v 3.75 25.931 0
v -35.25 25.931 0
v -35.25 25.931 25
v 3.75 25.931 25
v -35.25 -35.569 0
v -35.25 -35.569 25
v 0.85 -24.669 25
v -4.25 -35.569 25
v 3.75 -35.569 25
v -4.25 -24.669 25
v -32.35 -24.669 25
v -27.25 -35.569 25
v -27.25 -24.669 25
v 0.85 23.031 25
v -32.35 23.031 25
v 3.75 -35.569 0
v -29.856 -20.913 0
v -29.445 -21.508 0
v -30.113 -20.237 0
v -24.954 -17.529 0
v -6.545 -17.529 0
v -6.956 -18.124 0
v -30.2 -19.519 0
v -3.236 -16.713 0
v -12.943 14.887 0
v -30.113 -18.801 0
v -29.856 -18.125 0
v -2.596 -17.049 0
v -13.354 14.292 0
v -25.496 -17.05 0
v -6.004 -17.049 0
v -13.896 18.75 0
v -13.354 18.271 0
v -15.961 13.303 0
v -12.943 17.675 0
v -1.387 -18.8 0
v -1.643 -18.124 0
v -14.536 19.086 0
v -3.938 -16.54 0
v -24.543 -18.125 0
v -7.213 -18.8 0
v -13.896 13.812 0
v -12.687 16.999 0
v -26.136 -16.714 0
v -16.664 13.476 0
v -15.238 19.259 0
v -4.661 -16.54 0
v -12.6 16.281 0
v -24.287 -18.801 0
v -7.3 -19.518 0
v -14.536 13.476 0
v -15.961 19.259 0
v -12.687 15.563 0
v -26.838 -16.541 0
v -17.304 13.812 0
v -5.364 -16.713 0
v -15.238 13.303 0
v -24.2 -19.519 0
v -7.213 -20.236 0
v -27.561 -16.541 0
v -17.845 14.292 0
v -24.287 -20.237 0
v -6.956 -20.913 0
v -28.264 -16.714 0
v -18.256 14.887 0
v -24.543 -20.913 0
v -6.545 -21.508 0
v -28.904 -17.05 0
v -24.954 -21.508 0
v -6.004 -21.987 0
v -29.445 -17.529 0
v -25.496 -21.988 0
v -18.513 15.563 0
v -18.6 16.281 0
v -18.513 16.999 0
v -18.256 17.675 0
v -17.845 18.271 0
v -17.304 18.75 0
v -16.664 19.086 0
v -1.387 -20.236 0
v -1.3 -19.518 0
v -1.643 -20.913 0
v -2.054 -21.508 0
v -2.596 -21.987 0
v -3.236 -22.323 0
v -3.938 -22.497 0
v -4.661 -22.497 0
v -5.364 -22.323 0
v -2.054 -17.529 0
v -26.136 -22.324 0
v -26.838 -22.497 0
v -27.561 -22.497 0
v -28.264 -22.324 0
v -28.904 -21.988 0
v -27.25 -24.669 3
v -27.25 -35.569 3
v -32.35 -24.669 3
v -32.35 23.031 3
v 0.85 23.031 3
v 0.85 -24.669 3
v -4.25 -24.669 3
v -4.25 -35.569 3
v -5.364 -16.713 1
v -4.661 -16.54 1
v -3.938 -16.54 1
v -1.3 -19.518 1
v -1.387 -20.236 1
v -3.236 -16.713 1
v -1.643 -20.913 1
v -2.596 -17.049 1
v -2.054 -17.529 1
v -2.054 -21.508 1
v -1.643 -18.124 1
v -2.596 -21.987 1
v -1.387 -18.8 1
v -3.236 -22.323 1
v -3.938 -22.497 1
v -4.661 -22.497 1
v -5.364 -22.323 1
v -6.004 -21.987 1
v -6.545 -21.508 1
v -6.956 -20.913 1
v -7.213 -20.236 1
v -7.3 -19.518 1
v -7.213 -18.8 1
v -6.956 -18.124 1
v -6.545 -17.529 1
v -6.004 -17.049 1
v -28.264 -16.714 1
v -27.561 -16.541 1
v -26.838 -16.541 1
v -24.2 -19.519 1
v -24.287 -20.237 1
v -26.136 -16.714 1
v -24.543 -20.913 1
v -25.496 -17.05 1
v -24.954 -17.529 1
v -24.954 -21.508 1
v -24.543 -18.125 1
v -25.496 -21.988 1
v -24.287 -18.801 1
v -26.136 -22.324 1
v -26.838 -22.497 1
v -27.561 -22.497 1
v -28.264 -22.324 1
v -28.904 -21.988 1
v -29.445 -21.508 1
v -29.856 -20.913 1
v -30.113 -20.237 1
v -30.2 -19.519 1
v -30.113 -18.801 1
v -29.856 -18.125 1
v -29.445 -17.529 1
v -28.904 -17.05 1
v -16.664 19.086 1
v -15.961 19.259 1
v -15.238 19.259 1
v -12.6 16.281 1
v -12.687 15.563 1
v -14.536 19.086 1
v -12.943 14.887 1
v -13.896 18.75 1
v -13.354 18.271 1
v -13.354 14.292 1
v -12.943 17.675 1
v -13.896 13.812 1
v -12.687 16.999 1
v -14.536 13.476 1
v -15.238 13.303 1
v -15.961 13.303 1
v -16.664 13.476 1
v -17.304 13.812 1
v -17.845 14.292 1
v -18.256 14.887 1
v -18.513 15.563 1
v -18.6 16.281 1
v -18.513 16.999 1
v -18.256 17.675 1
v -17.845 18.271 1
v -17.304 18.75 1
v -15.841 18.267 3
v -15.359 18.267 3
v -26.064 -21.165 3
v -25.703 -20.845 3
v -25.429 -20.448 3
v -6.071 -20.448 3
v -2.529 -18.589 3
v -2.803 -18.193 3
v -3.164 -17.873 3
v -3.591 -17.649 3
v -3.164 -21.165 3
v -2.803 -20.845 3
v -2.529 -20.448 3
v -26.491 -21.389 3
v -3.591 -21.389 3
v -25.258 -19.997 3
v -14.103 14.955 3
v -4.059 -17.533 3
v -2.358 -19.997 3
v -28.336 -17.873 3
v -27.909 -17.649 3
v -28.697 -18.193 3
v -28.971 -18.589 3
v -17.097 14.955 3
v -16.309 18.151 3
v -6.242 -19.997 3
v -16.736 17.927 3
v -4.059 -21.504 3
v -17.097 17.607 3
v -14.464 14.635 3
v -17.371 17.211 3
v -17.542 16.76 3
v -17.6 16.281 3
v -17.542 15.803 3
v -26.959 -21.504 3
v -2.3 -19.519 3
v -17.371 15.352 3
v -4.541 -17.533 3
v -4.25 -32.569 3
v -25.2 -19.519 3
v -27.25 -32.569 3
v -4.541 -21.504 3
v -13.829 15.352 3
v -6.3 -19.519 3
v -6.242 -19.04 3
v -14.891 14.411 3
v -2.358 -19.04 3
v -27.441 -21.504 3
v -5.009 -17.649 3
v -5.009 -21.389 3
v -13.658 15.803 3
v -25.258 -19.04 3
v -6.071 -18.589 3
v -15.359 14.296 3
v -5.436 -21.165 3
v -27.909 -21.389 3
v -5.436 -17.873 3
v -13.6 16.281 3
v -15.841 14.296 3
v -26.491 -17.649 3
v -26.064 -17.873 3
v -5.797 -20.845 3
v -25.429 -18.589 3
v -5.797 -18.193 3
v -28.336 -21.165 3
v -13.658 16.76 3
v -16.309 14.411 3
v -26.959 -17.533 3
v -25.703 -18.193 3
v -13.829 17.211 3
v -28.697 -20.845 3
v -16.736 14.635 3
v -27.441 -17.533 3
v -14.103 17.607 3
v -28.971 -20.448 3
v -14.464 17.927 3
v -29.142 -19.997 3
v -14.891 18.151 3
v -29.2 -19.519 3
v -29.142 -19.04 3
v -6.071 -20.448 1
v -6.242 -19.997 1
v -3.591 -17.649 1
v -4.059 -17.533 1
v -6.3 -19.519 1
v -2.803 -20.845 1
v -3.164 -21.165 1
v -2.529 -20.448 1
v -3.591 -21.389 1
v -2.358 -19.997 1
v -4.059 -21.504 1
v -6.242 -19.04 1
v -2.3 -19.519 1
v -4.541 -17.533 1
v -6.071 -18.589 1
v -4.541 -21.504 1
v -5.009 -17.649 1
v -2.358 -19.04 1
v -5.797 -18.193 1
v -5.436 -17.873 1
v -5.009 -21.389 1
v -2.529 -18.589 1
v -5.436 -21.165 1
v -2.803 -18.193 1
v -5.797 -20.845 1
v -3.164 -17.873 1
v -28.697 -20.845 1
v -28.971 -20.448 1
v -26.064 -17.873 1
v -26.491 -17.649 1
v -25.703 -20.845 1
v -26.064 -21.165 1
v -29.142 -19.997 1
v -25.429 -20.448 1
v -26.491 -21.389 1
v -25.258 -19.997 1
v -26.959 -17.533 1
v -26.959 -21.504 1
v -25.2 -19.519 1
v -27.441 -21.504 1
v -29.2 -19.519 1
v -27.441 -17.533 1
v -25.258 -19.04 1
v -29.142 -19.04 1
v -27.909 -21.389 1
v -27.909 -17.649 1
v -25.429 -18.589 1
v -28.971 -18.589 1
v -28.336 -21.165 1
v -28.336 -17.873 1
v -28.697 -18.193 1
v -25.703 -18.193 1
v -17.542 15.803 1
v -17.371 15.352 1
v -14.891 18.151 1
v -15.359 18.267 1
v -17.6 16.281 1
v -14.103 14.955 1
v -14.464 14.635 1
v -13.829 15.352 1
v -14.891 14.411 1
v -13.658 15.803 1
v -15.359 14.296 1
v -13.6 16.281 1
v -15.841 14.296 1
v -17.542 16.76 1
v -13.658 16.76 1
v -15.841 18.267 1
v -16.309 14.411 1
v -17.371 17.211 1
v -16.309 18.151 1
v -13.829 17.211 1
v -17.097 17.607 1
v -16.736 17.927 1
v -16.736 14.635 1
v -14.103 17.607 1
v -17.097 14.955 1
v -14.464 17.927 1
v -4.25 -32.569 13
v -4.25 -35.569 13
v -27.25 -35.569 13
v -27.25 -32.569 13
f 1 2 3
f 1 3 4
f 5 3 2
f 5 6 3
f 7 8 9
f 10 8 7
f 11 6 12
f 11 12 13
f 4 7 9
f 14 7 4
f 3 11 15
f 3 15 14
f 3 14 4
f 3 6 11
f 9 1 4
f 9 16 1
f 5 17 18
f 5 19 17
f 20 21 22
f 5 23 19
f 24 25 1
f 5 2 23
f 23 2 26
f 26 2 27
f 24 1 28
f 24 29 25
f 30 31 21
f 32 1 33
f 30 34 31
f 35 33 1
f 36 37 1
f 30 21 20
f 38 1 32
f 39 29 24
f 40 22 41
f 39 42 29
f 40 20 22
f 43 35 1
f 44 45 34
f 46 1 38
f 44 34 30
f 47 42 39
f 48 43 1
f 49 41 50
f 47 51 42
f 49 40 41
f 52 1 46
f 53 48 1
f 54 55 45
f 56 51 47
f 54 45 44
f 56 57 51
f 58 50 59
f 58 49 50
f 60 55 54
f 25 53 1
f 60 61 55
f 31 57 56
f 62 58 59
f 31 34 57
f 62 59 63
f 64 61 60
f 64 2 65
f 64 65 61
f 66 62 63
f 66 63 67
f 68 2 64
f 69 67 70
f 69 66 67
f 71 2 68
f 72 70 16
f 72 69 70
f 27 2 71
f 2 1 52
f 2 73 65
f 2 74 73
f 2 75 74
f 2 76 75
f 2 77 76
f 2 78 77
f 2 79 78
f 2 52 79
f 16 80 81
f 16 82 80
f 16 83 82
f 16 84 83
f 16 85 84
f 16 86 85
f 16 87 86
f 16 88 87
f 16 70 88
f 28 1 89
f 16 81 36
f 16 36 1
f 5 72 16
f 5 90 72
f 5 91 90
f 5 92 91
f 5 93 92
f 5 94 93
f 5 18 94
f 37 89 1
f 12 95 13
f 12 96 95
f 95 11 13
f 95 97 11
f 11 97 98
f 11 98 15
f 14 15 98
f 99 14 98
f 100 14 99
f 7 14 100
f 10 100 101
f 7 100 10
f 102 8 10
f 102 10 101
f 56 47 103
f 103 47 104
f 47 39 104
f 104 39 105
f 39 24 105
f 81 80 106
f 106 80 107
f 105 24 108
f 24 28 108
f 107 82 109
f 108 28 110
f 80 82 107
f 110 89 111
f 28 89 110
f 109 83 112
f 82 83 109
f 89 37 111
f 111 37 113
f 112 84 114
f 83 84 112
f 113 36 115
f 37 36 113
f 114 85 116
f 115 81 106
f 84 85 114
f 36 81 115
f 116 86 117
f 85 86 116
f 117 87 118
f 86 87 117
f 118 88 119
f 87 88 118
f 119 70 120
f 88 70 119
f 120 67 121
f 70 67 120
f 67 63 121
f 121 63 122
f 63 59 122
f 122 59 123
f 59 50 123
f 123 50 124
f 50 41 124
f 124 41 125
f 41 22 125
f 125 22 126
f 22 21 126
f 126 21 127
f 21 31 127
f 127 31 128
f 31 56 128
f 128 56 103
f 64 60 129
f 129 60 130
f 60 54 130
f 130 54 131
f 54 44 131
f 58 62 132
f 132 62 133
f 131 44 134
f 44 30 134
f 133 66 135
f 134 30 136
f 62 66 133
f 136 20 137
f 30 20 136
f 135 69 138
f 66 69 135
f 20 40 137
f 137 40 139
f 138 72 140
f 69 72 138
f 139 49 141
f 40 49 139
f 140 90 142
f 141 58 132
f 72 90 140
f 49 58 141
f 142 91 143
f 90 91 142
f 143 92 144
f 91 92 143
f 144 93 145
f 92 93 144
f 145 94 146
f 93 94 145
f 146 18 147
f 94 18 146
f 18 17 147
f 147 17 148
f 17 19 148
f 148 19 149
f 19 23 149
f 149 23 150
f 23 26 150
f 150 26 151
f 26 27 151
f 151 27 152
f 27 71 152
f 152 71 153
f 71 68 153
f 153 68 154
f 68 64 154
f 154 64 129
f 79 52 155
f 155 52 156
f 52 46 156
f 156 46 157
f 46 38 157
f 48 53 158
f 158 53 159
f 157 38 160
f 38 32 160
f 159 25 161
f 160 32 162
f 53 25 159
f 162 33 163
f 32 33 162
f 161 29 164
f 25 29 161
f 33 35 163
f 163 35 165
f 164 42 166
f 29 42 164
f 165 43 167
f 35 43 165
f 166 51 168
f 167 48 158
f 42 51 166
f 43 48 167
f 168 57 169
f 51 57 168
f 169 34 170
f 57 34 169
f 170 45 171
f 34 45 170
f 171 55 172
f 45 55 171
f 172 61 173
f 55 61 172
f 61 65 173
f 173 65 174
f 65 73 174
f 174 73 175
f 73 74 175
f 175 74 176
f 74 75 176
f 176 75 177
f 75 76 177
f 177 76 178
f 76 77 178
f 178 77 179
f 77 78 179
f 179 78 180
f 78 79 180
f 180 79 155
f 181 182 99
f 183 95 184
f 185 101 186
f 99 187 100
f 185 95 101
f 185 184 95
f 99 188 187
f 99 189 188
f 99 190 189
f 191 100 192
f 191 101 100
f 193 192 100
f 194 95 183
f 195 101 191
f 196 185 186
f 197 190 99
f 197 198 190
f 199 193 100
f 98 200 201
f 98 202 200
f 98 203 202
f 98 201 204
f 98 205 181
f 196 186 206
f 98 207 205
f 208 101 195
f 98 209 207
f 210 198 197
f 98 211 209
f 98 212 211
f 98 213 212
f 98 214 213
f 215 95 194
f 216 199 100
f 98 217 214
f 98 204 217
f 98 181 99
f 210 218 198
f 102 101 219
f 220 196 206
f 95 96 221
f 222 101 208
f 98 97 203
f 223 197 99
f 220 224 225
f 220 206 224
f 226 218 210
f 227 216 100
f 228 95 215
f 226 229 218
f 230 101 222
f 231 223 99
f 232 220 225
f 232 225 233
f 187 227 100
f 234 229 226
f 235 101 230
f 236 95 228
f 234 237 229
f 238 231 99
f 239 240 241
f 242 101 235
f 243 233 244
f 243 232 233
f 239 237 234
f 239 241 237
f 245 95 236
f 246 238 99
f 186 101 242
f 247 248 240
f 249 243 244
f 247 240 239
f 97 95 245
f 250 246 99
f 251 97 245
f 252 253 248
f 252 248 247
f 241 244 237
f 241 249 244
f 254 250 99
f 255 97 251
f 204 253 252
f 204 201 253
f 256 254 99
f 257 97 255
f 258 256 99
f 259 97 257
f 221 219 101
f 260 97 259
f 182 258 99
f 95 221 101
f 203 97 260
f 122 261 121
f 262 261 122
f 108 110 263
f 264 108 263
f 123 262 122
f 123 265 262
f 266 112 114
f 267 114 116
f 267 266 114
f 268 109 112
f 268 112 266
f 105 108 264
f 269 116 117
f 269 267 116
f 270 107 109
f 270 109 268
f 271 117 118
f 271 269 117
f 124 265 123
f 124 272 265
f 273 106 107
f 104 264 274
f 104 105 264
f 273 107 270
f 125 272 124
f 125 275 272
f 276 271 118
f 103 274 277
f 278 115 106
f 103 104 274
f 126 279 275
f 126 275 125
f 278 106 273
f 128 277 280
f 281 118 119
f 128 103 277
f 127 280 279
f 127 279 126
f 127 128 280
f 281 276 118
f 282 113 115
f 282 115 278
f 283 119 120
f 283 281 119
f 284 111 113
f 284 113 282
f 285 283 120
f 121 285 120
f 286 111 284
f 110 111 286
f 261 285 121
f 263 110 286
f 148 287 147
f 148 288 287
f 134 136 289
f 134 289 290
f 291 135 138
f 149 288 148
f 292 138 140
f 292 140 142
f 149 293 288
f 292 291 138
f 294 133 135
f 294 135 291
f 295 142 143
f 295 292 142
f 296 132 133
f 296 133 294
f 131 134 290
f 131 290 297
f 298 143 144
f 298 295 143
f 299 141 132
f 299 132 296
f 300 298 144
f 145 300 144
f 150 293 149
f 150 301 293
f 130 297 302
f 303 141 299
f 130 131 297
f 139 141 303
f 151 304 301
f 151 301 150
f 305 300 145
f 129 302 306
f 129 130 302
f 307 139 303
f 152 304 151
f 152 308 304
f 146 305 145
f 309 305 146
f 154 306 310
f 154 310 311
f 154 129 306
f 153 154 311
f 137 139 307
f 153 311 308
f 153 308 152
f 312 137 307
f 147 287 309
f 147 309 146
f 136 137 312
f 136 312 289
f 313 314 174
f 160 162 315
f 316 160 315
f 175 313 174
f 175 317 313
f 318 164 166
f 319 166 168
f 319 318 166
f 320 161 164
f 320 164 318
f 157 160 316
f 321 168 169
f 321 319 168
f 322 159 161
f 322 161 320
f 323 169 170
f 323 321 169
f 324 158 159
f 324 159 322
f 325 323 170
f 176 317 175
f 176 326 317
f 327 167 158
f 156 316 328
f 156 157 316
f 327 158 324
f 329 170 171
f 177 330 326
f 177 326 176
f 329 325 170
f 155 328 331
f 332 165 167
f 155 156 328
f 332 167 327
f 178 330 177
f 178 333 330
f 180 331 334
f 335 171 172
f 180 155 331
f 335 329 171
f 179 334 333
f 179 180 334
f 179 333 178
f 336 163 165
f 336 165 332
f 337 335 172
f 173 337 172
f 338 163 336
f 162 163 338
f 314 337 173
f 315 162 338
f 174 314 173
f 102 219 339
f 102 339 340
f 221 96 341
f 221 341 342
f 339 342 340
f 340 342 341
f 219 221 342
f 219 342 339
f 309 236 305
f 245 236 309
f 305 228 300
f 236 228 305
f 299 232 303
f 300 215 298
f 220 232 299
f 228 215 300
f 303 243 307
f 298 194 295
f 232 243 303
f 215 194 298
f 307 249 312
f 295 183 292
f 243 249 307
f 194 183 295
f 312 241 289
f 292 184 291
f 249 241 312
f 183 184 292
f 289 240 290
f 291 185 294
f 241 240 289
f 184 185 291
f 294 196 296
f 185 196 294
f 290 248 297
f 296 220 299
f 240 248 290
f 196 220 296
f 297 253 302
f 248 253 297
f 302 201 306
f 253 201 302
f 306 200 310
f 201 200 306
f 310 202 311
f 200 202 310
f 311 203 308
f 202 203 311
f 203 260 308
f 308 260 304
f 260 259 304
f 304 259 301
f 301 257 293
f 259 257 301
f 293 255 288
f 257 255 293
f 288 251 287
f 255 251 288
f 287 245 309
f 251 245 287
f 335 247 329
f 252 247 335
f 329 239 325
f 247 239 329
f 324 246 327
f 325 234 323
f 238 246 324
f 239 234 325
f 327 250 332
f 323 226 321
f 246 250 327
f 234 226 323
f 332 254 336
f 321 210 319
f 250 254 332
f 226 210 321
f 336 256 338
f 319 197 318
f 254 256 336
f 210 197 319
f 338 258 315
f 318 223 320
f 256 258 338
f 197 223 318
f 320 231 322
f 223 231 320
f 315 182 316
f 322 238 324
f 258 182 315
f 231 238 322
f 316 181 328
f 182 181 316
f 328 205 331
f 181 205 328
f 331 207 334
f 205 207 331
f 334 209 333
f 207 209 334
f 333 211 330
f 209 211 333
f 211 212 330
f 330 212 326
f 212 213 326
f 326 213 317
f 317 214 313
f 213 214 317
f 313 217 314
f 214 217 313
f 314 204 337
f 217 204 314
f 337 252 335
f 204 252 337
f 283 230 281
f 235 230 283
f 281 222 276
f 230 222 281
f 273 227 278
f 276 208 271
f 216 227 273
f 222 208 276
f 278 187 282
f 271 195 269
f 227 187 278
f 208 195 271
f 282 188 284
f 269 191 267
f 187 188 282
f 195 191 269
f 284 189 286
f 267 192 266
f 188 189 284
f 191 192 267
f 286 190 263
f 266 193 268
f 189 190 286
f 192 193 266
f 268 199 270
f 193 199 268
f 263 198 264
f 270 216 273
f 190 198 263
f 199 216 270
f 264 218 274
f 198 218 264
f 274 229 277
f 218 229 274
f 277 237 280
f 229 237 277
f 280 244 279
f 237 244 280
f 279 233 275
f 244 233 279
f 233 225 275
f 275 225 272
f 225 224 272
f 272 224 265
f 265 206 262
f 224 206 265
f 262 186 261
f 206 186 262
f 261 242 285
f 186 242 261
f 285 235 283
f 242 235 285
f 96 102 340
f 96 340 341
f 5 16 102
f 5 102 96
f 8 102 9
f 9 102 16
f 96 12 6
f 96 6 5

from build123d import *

# Parameters (mm, degrees)
SKETCH_W           = 37
SKETCH_H           = 51.5
PAD_DEPTH          = 25
SKETCH001_W        = 31
SKETCH001_H        = 45.5
POCKET_DEPTH       = 22
SKETCH002_W        = 31.0000008352
SKETCH002_H        = 3
POCKET001_DEPTH    = 22
SKETCH003_R        = 2
POCKET002_DEPTH    = 5
SKETCH004_R        = 3
POCKET003_DEPTH    = 1
SKETCH005_W        = 4
SKETCH005_H        = 3
PAD001_DEPTH       = 22
PAD001_FACE12_W    = 45.5
PAD001_FACE12_H    = 22
POCKET004_DEPTH    = 0.1
POCKET004_FACE17_W = 3.9999991648
POCKET004_FACE17_H = 22
POCKET005_DEPTH    = 0.1
POCKET005_FACE13_W = 31
POCKET005_FACE13_H = 22
POCKET006_DEPTH    = 0.1
POCKET006_FACE12_W = 45.5
POCKET006_FACE12_H = 22
POCKET007_DEPTH    = 0.1
POCKET007_FACE11_W = 4
POCKET007_FACE11_H = 22
POCKET008_DEPTH    = 0.1
POCKET008_FACE19_W = 0.1
POCKET008_FACE19_H = 22
POCKET009_DEPTH    = 0.1
POCKET009_FACE15_W = 0.1
POCKET009_FACE15_H = 22
POCKET010_DEPTH    = 0.1
POCKET010_FACE12_W = 0.1
POCKET010_FACE12_H = 22
POCKET011_DEPTH    = 0.1
POCKET011_FACE22_W = 0.1
POCKET011_FACE22_H = 22
POCKET012_DEPTH    = 0.1
POCKET012_FACE22_W = 45.7
POCKET012_FACE22_H = 22
POCKET013_DEPTH    = 1
POCKET013_FACE12_W = 45.7
POCKET013_FACE12_H = 22
POCKET014_DEPTH    = 1
POCKET014_FACE22_W = 33.2
POCKET014_FACE22_H = 22
POCKET015_DEPTH    = 1
POCKET015_FACE17_W = 5.0999991648
POCKET015_FACE17_H = 22
POCKET016_DEPTH    = 1
POCKET016_FACE11_W = 5.1
POCKET016_FACE11_H = 22
POCKET017_DEPTH    = 1
POCKET017_FACE3_W  = 51.5
POCKET017_FACE3_H  = 25
PAD002_DEPTH       = 1
PAD002_FACE2_W     = 51.5
PAD002_FACE2_H     = 25
PAD003_DEPTH       = 1
PAD003_FACE2_W     = 39
PAD003_FACE2_H     = 25
PAD004_DEPTH       = 1
PAD005_DEPTH       = 1
PAD006_DEPTH       = 5
PAD007_DEPTH       = 3
SKETCH006_W        = 22.9999991648
SKETCH006_H        = 3
PAD008_DEPTH       = 10


with BuildPart() as part:
    # Sketch → Pad (new body)
    with BuildSketch(Plane.XY):
        with Locations((-15.7498351648, -0.8188517965)):
            Rectangle(SKETCH_W, SKETCH_H)
    extrude(amount=PAD_DEPTH)

    # Sketch001 (on Face6 of Pad) → Pocket (cut)
    with BuildSketch(Plane.XY.offset(25)):
        with Locations((-15.7498351648, -0.8188517965)):
            Rectangle(SKETCH001_W, SKETCH001_H)
    extrude(amount=-POCKET_DEPTH, mode=Mode.SUBTRACT)

    # Sketch002 (on Face5 of Pocket) → Pocket001 (cut)
    with BuildSketch(Plane.XY.offset(25)):
        with Locations((-15.7498355824, -25.0688517965)):
            Rectangle(SKETCH002_W, SKETCH002_H)
    extrude(amount=-POCKET001_DEPTH, mode=Mode.SUBTRACT)

    # Sketch003 (on Face12 of Pocket001) → Pocket002 (cut)
    with BuildSketch(Plane.XY.offset(3)):
        with Locations((-15.5998351648, 16.2811482035)):
            Circle(SKETCH003_R)
        with Locations((-27.1998351648, -19.5188517965)):
            Circle(SKETCH003_R)
        with Locations((-4.2998351648, -19.5188517965)):
            Circle(SKETCH003_R)
    extrude(amount=-POCKET002_DEPTH, mode=Mode.SUBTRACT)

    # Sketch004 (on Face4 of Pocket002) → Pocket003 (cut)
    with BuildSketch(Plane(origin=(0, 0, 0), x_dir=(1, 0, 0), z_dir=(0, 0, -1))):
        with Locations((-27.199835, 19.518852)):
            Circle(SKETCH004_R)
        with Locations((-4.29979, 19.518393)):
            Circle(SKETCH004_R)
        with Locations((-15.599835, -16.281149)):
            Circle(SKETCH004_R)
    extrude(amount=-POCKET003_DEPTH, mode=Mode.SUBTRACT)

    # Sketch005 (on Face15 of Pocket003) → Pad001 (join)
    with BuildSketch(Plane.XY.offset(3)):
        with Locations((-29.249836, -25.0688517965)):
            Rectangle(SKETCH005_W, SKETCH005_H)
        with Locations((-2.2498351648, -25.0688517965)):
            Rectangle(SKETCH005_W, SKETCH005_H)
    extrude(amount=PAD001_DEPTH)

    # Pad001 Face12 → Pocket004 (cut)
    with BuildSketch(Plane(origin=(-31.2498351648, -0.8188517965, 14), x_dir=(0, -1, 0), z_dir=(1, 0, 0))):
        Rectangle(PAD001_FACE12_W, PAD001_FACE12_H)
    extrude(amount=-POCKET004_DEPTH, mode=Mode.SUBTRACT)

    # Pocket004 Face17 → Pocket005 (cut)
    with BuildSketch(Plane(origin=(-29.2498355824, -23.5688517965, 14), x_dir=(1, 0, 0), z_dir=(0, 1, 0))):
        Rectangle(POCKET004_FACE17_W, POCKET004_FACE17_H)
    extrude(amount=-POCKET005_DEPTH, mode=Mode.SUBTRACT)

    # Pocket005 Face13 → Pocket006 (cut)
    with BuildSketch(Plane(origin=(-15.7498351648, 21.9311482035, 14), x_dir=(-1, 0, 0), z_dir=(0, -1, 0))):
        Rectangle(POCKET005_FACE13_W, POCKET005_FACE13_H)
    extrude(amount=-POCKET006_DEPTH, mode=Mode.SUBTRACT)

    # Pocket006 Face12 → Pocket007 (cut)
    with BuildSketch(Plane(origin=(-0.2498351648, -0.8188517965, 14), x_dir=(0, 1, 0), z_dir=(-1, 0, 0))):
        Rectangle(POCKET006_FACE12_W, POCKET006_FACE12_H)
    extrude(amount=-POCKET007_DEPTH, mode=Mode.SUBTRACT)

    # Pocket007 Face11 → Pocket008 (cut)
    with BuildSketch(Plane(origin=(-2.2498351648, -23.5688517965, 14), x_dir=(1, 0, 0), z_dir=(0, 1, 0))):
        Rectangle(POCKET007_FACE11_W, POCKET007_FACE11_H)
    extrude(amount=-POCKET008_DEPTH, mode=Mode.SUBTRACT)

    # Pocket008 Face19 → Pocket009 (cut)
    with BuildSketch(Plane(origin=(-31.2998351648, 21.9311482035, 14), x_dir=(-1, 0, 0), z_dir=(0, -1, 0))):
        Rectangle(POCKET008_FACE19_W, POCKET008_FACE19_H)
    extrude(amount=-POCKET009_DEPTH, mode=Mode.SUBTRACT)

    # Pocket009 Face15 → Pocket010 (cut)
    with BuildSketch(Plane(origin=(-0.1998351648, 21.9311482035, 14), x_dir=(-1, 0, 0), z_dir=(0, -1, 0))):
        Rectangle(POCKET009_FACE15_W, POCKET009_FACE15_H)
    extrude(amount=-POCKET010_DEPTH, mode=Mode.SUBTRACT)

    # Pocket010 Face12 → Pocket011 (cut)
    with BuildSketch(Plane(origin=(-0.2498351648, -23.6188517965, 14), x_dir=(0, 1, 0), z_dir=(-1, 0, 0))):
        Rectangle(POCKET010_FACE12_W, POCKET010_FACE12_H)
    extrude(amount=-POCKET011_DEPTH, mode=Mode.SUBTRACT)

    # Pocket011 Face22 → Pocket012 (cut)
    with BuildSketch(Plane(origin=(-31.2498351648, -23.6188517965, 14), x_dir=(0, -1, 0), z_dir=(1, 0, 0))):
        Rectangle(POCKET011_FACE22_W, POCKET011_FACE22_H)
    extrude(amount=-POCKET012_DEPTH, mode=Mode.SUBTRACT)

    # Pocket012 Face22 → Pocket013 (cut)
    with BuildSketch(Plane(origin=(-31.3498351648, -0.8188517965, 14), x_dir=(0, -1, 0), z_dir=(1, 0, 0))):
        Rectangle(POCKET012_FACE22_W, POCKET012_FACE22_H)
    extrude(amount=-POCKET013_DEPTH, mode=Mode.SUBTRACT)

    # Pocket013 Face12 → Pocket014 (cut)
    with BuildSketch(Plane(origin=(-0.1498351648, -0.8188517965, 14), x_dir=(0, 1, 0), z_dir=(-1, 0, 0))):
        Rectangle(POCKET013_FACE12_W, POCKET013_FACE12_H)
    extrude(amount=-POCKET014_DEPTH, mode=Mode.SUBTRACT)

    # Pocket014 Face22 → Pocket015 (cut)
    with BuildSketch(Plane(origin=(-15.7498351648, 22.0311482035, 14), x_dir=(-1, 0, 0), z_dir=(0, -1, 0))):
        Rectangle(POCKET014_FACE22_W, POCKET014_FACE22_H)
    extrude(amount=-POCKET015_DEPTH, mode=Mode.SUBTRACT)

    # Pocket015 Face17 → Pocket016 (cut)
    with BuildSketch(Plane(origin=(-29.7998355824, -23.6688517965, 14), x_dir=(1, 0, 0), z_dir=(0, 1, 0))):
        Rectangle(POCKET015_FACE17_W, POCKET015_FACE17_H)
    extrude(amount=-POCKET016_DEPTH, mode=Mode.SUBTRACT)

    # Pocket016 Face11 → Pocket017 (cut)
    with BuildSketch(Plane(origin=(-1.6998351648, -23.6688517965, 14), x_dir=(1, 0, 0), z_dir=(0, 1, 0))):
        Rectangle(POCKET016_FACE11_W, POCKET016_FACE11_H)
    extrude(amount=-POCKET017_DEPTH, mode=Mode.SUBTRACT)

    # Pocket017 Face3 → Pad002 (add)
    with BuildSketch(Plane(origin=(2.7501648352, -0.8188517965, 12.5), x_dir=(0, -1, 0), z_dir=(1, 0, 0))):
        Rectangle(POCKET017_FACE3_W, POCKET017_FACE3_H)
    extrude(amount=PAD002_DEPTH)

    # Pad002 Face2 → Pad003 (add)
    with BuildSketch(Plane(origin=(-34.2498351648, -0.8188517965, 12.5), x_dir=(0, 1, 0), z_dir=(-1, 0, 0))):
        Rectangle(PAD002_FACE2_W, PAD002_FACE2_H)
    extrude(amount=PAD003_DEPTH)

    # Pad003 Face2 → Pad004 (add)
    with BuildSketch(Plane(origin=(-15.7498351648, 24.9311482035, 12.5), x_dir=(1, 0, 0), z_dir=(0, 1, 0))):
        Rectangle(PAD003_FACE2_W, PAD003_FACE2_H)
    extrude(amount=PAD004_DEPTH)

    # Pad004 Face2 → Pad005 (add)
    with BuildSketch(Plane(origin=(-15.7498347143, -26.5688517965, 10.8816629908), x_dir=(-1, 0, 0), z_dir=(0, -1, 0))):
        Polygon((19.5000004505, 10.8816629908), (-19.4999995495, 10.8816629908), (-19.4999995495, -14.1183370092), (-11.4999995495, -14.1183370092), (-11.4999995495, 7.8816629908), (11.5000012857, 7.8816629908), (11.5000012857, -14.1183370092), (19.5000004505, -14.1183370092), align=None)
    extrude(amount=PAD005_DEPTH)

    # Pad005 Face1 → Pad006 (add)
    with BuildSketch(Plane(origin=(-15.7498347143, -27.5688517965, 10.8816629908), x_dir=(-1, 0, 0), z_dir=(0, -1, 0))):
        Polygon((19.5000004505, 10.8816629908), (-19.4999995495, 10.8816629908), (-19.4999995495, -14.1183370092), (-11.4999995495, -14.1183370092), (-11.4999995495, 7.8816629908), (11.5000012857, 7.8816629908), (11.5000012857, -14.1183370092), (19.5000004505, -14.1183370092), align=None)
    extrude(amount=PAD006_DEPTH)

    # Pad006 Face3 → Pad007 (add)
    with BuildSketch(Plane(origin=(-15.7498347143, -32.5688517965, 10.8816629908), x_dir=(-1, 0, 0), z_dir=(0, -1, 0))):
        Polygon((19.5000004505, 10.8816629908), (-19.4999995495, 10.8816629908), (-19.4999995495, -14.1183370092), (-11.4999995495, -14.1183370092), (-11.4999995495, 7.8816629908), (11.5000012857, 7.8816629908), (11.5000012857, -14.1183370092), (19.5000004505, -14.1183370092), align=None)
    extrude(amount=PAD007_DEPTH)

    # Sketch006 (on Face23 of Pad007) → Pad008 (join)
    with BuildSketch(Plane.XY.offset(3)):
        with Locations((-15.7498355824, -34.0688517965)):
            Rectangle(SKETCH006_W, SKETCH006_H)
    extrude(amount=PAD008_DEPTH)


solid = part.part
